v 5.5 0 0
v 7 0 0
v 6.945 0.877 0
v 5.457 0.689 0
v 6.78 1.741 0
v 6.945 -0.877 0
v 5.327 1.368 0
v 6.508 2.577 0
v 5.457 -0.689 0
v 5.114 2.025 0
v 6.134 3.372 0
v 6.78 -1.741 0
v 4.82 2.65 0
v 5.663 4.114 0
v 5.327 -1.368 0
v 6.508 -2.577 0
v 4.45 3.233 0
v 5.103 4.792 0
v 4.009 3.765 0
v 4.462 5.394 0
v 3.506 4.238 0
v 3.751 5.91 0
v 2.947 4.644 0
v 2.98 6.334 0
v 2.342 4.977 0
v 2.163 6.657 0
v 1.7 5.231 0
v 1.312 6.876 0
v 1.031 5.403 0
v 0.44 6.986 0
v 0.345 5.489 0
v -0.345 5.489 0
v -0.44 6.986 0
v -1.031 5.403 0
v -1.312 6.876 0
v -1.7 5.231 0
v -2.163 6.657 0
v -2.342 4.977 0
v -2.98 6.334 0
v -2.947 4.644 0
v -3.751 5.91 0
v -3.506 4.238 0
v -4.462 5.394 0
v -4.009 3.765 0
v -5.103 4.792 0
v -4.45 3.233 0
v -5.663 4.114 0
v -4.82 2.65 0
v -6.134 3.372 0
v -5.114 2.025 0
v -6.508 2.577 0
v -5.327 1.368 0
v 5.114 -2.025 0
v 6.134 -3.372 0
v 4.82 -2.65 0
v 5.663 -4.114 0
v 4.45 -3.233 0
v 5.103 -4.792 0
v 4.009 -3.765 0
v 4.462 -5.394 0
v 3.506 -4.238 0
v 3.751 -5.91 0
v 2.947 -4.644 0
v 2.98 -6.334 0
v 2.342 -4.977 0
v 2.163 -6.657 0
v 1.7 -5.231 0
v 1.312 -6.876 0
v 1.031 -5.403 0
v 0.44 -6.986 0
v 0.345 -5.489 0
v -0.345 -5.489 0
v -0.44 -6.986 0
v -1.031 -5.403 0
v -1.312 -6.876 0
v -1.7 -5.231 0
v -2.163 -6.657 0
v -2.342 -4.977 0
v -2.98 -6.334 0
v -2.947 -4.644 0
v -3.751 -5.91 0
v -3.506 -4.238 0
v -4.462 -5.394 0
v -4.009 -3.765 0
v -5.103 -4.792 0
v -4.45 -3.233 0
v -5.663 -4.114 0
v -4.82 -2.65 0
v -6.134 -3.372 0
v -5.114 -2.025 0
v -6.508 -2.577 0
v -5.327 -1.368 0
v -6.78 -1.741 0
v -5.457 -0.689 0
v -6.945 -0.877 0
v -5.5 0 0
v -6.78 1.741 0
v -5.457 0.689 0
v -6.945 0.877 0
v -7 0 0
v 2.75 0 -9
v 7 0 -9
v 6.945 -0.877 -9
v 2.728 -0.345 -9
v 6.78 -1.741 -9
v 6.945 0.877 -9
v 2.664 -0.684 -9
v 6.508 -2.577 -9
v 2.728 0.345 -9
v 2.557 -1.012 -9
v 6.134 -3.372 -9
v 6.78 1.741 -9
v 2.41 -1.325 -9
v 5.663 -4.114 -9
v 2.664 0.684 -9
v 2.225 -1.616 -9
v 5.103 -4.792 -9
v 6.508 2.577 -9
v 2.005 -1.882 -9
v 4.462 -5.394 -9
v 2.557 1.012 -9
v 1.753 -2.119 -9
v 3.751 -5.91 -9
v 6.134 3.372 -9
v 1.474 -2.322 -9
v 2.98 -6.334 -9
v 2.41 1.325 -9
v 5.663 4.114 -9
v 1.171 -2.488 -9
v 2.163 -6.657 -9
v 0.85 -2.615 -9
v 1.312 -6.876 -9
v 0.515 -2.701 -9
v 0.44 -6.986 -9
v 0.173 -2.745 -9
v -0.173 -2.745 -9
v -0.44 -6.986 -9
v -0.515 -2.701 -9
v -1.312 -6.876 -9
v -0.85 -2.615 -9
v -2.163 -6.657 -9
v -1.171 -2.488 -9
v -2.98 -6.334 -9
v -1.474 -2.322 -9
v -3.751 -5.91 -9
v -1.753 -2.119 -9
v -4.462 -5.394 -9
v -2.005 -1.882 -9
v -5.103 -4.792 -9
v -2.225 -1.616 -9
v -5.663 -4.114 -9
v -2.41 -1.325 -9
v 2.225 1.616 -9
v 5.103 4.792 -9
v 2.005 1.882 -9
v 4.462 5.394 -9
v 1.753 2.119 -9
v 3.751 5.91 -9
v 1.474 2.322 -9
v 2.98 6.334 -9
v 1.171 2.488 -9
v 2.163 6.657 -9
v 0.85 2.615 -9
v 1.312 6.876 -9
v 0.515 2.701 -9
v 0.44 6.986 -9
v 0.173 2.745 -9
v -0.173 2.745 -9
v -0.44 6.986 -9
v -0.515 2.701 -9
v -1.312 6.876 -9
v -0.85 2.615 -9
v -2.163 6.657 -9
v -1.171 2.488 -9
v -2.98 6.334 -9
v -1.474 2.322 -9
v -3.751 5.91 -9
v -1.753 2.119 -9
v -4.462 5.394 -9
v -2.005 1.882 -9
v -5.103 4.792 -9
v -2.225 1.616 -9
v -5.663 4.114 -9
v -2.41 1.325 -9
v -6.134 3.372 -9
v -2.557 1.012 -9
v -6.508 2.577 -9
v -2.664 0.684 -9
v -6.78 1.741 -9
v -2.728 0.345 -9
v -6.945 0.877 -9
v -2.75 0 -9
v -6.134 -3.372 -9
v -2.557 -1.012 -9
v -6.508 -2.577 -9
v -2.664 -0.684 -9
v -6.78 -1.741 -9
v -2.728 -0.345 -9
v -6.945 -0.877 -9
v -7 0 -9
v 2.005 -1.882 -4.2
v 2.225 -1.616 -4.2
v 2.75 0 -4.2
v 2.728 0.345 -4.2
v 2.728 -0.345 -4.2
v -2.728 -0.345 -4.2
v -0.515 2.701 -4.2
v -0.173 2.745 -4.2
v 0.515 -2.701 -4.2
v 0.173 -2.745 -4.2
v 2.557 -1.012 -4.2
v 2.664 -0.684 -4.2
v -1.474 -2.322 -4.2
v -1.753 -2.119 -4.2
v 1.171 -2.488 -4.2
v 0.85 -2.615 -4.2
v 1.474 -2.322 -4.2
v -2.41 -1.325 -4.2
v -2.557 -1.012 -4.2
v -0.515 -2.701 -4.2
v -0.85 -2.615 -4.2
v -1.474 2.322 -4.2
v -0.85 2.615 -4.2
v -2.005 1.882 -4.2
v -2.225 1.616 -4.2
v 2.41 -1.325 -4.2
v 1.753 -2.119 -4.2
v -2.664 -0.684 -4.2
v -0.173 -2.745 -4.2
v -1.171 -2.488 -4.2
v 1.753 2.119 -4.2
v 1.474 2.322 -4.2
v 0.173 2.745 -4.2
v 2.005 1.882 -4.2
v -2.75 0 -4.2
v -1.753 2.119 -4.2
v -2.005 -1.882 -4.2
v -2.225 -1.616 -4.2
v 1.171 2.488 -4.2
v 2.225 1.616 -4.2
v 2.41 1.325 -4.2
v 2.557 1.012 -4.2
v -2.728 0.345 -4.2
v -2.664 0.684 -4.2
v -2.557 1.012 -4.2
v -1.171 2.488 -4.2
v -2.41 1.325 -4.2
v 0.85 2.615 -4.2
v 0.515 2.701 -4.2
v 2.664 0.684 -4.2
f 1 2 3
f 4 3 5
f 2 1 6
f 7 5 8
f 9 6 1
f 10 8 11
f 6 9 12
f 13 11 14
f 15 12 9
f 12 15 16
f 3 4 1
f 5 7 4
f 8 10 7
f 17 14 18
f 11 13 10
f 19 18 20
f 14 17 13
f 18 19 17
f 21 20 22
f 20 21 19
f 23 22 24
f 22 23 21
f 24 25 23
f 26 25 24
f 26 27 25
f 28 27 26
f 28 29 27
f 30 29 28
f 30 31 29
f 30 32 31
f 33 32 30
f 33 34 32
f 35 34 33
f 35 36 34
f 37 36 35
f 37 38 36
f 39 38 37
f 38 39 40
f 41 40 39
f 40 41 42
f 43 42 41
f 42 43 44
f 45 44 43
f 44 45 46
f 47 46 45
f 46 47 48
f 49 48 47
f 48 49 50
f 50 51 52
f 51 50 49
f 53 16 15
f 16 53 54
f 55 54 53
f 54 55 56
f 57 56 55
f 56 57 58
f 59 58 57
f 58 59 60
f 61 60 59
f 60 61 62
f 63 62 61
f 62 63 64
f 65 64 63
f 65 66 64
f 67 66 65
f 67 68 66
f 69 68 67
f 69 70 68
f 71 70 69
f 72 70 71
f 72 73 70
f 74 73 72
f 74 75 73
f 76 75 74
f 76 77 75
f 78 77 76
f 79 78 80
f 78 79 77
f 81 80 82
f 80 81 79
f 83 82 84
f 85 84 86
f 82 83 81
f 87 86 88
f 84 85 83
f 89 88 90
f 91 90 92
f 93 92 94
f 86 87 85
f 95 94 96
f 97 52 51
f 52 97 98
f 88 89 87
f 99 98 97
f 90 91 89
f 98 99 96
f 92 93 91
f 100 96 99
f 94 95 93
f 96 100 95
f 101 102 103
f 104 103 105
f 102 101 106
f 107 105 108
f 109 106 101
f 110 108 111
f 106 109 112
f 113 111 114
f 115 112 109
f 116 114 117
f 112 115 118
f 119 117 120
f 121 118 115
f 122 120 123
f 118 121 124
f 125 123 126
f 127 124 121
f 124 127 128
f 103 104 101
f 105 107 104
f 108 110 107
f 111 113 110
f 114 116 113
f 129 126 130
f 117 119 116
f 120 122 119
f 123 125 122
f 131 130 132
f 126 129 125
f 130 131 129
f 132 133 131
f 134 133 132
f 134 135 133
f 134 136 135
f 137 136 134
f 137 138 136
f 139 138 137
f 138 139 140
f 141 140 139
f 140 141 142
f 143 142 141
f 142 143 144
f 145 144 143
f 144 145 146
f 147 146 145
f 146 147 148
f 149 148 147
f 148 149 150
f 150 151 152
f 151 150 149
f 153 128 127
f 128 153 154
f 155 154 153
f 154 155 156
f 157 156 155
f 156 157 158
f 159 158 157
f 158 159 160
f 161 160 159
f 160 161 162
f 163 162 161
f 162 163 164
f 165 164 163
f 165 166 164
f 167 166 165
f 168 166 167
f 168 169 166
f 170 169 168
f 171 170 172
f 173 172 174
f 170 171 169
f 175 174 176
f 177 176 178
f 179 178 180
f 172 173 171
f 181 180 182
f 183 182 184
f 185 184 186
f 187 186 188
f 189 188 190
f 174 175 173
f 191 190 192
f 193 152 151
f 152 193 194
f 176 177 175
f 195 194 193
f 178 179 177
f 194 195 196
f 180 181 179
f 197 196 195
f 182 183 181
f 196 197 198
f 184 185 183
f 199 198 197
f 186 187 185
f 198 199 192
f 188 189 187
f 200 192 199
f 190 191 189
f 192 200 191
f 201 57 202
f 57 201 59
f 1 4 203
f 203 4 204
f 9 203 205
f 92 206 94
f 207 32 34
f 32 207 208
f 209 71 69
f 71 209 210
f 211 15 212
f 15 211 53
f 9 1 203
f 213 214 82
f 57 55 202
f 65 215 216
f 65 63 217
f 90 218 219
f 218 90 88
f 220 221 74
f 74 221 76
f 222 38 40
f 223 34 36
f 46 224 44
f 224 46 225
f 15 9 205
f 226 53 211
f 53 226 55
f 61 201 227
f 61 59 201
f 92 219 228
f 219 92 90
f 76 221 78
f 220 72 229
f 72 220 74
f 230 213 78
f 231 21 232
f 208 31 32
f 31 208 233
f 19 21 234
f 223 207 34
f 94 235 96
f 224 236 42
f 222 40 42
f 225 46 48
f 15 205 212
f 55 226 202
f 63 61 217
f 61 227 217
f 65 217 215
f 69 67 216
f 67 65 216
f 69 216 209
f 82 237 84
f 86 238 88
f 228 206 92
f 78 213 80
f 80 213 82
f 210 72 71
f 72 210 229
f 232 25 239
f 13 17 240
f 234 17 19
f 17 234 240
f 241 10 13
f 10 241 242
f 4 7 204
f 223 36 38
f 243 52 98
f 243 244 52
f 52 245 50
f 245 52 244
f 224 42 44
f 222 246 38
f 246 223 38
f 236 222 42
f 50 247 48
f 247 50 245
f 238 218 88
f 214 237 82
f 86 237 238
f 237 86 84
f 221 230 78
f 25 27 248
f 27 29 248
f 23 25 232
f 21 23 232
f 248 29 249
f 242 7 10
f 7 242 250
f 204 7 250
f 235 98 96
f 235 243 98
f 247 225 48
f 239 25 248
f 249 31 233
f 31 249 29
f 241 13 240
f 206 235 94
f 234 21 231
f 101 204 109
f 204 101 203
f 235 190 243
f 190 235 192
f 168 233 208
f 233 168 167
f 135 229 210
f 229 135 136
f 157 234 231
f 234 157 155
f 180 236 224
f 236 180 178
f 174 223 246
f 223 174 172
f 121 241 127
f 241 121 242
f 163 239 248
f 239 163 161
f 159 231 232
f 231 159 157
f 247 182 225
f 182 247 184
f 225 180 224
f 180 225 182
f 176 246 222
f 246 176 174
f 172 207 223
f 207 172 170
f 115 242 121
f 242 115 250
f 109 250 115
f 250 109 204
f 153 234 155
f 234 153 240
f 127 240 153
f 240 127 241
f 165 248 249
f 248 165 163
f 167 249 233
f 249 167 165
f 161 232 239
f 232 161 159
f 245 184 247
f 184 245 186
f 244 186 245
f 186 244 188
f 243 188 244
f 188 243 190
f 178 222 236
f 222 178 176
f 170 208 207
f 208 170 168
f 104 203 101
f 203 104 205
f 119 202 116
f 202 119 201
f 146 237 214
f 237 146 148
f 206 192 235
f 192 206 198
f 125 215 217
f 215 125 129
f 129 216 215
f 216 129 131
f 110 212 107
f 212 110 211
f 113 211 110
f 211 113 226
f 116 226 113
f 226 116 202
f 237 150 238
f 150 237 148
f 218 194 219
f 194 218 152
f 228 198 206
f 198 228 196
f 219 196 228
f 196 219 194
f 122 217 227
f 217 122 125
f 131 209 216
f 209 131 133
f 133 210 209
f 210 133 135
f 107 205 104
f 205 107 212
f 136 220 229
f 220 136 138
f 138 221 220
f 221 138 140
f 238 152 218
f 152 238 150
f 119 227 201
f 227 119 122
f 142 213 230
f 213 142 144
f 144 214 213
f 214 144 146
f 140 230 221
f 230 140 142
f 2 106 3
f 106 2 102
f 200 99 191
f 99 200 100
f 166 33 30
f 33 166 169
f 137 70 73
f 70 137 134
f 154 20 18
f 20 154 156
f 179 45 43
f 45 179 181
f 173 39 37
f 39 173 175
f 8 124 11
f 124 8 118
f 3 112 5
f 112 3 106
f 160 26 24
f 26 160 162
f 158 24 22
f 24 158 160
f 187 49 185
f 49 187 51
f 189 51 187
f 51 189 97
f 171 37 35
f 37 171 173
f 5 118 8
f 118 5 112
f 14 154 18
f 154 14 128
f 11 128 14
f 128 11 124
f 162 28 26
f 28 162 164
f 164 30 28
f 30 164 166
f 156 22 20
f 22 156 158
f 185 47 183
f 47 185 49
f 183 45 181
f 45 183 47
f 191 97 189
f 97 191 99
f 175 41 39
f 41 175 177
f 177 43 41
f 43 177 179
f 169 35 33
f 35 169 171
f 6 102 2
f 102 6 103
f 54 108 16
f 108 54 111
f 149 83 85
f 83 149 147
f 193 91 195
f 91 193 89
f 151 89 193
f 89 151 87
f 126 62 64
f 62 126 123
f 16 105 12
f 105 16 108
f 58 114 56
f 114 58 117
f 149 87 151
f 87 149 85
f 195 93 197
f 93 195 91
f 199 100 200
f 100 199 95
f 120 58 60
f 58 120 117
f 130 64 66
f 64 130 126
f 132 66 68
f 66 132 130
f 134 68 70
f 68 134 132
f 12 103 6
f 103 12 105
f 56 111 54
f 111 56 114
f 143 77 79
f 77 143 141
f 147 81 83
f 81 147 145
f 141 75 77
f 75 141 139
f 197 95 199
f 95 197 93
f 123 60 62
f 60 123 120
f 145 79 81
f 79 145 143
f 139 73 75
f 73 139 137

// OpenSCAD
$fn = 50;


difference() {
	union() {
		translate(v = [0, 0, -9.0000000000]) {
			cylinder(h = 9, r = 7.0000000000);
		}
		cylinder(h = 0, r = 17.0000000000);
	}
	union() {
		translate(v = [0, 0, 0]) {
			rotate(a = [0, 0, 0]) {
				difference() {
					union() {
						#translate(v = [0, 0, -9.0000000000]) {
							cylinder(h = 9, r = 2.2500000000);
						}
						#translate(v = [0, 0, -4.2000000000]) {
							cylinder(h = 4.2000000000, r1 = 2.7500000000, r2 = 5.5000000000);
						}
						#translate(v = [0, 0, -9.0000000000]) {
							cylinder(h = 9, r = 2.7500000000);
						}
						#translate(v = [0, 0, -9.0000000000]) {
							cylinder(h = 9, r = 2.2500000000);
						}
					}
					union();
				}
			}
		}
	}
}
